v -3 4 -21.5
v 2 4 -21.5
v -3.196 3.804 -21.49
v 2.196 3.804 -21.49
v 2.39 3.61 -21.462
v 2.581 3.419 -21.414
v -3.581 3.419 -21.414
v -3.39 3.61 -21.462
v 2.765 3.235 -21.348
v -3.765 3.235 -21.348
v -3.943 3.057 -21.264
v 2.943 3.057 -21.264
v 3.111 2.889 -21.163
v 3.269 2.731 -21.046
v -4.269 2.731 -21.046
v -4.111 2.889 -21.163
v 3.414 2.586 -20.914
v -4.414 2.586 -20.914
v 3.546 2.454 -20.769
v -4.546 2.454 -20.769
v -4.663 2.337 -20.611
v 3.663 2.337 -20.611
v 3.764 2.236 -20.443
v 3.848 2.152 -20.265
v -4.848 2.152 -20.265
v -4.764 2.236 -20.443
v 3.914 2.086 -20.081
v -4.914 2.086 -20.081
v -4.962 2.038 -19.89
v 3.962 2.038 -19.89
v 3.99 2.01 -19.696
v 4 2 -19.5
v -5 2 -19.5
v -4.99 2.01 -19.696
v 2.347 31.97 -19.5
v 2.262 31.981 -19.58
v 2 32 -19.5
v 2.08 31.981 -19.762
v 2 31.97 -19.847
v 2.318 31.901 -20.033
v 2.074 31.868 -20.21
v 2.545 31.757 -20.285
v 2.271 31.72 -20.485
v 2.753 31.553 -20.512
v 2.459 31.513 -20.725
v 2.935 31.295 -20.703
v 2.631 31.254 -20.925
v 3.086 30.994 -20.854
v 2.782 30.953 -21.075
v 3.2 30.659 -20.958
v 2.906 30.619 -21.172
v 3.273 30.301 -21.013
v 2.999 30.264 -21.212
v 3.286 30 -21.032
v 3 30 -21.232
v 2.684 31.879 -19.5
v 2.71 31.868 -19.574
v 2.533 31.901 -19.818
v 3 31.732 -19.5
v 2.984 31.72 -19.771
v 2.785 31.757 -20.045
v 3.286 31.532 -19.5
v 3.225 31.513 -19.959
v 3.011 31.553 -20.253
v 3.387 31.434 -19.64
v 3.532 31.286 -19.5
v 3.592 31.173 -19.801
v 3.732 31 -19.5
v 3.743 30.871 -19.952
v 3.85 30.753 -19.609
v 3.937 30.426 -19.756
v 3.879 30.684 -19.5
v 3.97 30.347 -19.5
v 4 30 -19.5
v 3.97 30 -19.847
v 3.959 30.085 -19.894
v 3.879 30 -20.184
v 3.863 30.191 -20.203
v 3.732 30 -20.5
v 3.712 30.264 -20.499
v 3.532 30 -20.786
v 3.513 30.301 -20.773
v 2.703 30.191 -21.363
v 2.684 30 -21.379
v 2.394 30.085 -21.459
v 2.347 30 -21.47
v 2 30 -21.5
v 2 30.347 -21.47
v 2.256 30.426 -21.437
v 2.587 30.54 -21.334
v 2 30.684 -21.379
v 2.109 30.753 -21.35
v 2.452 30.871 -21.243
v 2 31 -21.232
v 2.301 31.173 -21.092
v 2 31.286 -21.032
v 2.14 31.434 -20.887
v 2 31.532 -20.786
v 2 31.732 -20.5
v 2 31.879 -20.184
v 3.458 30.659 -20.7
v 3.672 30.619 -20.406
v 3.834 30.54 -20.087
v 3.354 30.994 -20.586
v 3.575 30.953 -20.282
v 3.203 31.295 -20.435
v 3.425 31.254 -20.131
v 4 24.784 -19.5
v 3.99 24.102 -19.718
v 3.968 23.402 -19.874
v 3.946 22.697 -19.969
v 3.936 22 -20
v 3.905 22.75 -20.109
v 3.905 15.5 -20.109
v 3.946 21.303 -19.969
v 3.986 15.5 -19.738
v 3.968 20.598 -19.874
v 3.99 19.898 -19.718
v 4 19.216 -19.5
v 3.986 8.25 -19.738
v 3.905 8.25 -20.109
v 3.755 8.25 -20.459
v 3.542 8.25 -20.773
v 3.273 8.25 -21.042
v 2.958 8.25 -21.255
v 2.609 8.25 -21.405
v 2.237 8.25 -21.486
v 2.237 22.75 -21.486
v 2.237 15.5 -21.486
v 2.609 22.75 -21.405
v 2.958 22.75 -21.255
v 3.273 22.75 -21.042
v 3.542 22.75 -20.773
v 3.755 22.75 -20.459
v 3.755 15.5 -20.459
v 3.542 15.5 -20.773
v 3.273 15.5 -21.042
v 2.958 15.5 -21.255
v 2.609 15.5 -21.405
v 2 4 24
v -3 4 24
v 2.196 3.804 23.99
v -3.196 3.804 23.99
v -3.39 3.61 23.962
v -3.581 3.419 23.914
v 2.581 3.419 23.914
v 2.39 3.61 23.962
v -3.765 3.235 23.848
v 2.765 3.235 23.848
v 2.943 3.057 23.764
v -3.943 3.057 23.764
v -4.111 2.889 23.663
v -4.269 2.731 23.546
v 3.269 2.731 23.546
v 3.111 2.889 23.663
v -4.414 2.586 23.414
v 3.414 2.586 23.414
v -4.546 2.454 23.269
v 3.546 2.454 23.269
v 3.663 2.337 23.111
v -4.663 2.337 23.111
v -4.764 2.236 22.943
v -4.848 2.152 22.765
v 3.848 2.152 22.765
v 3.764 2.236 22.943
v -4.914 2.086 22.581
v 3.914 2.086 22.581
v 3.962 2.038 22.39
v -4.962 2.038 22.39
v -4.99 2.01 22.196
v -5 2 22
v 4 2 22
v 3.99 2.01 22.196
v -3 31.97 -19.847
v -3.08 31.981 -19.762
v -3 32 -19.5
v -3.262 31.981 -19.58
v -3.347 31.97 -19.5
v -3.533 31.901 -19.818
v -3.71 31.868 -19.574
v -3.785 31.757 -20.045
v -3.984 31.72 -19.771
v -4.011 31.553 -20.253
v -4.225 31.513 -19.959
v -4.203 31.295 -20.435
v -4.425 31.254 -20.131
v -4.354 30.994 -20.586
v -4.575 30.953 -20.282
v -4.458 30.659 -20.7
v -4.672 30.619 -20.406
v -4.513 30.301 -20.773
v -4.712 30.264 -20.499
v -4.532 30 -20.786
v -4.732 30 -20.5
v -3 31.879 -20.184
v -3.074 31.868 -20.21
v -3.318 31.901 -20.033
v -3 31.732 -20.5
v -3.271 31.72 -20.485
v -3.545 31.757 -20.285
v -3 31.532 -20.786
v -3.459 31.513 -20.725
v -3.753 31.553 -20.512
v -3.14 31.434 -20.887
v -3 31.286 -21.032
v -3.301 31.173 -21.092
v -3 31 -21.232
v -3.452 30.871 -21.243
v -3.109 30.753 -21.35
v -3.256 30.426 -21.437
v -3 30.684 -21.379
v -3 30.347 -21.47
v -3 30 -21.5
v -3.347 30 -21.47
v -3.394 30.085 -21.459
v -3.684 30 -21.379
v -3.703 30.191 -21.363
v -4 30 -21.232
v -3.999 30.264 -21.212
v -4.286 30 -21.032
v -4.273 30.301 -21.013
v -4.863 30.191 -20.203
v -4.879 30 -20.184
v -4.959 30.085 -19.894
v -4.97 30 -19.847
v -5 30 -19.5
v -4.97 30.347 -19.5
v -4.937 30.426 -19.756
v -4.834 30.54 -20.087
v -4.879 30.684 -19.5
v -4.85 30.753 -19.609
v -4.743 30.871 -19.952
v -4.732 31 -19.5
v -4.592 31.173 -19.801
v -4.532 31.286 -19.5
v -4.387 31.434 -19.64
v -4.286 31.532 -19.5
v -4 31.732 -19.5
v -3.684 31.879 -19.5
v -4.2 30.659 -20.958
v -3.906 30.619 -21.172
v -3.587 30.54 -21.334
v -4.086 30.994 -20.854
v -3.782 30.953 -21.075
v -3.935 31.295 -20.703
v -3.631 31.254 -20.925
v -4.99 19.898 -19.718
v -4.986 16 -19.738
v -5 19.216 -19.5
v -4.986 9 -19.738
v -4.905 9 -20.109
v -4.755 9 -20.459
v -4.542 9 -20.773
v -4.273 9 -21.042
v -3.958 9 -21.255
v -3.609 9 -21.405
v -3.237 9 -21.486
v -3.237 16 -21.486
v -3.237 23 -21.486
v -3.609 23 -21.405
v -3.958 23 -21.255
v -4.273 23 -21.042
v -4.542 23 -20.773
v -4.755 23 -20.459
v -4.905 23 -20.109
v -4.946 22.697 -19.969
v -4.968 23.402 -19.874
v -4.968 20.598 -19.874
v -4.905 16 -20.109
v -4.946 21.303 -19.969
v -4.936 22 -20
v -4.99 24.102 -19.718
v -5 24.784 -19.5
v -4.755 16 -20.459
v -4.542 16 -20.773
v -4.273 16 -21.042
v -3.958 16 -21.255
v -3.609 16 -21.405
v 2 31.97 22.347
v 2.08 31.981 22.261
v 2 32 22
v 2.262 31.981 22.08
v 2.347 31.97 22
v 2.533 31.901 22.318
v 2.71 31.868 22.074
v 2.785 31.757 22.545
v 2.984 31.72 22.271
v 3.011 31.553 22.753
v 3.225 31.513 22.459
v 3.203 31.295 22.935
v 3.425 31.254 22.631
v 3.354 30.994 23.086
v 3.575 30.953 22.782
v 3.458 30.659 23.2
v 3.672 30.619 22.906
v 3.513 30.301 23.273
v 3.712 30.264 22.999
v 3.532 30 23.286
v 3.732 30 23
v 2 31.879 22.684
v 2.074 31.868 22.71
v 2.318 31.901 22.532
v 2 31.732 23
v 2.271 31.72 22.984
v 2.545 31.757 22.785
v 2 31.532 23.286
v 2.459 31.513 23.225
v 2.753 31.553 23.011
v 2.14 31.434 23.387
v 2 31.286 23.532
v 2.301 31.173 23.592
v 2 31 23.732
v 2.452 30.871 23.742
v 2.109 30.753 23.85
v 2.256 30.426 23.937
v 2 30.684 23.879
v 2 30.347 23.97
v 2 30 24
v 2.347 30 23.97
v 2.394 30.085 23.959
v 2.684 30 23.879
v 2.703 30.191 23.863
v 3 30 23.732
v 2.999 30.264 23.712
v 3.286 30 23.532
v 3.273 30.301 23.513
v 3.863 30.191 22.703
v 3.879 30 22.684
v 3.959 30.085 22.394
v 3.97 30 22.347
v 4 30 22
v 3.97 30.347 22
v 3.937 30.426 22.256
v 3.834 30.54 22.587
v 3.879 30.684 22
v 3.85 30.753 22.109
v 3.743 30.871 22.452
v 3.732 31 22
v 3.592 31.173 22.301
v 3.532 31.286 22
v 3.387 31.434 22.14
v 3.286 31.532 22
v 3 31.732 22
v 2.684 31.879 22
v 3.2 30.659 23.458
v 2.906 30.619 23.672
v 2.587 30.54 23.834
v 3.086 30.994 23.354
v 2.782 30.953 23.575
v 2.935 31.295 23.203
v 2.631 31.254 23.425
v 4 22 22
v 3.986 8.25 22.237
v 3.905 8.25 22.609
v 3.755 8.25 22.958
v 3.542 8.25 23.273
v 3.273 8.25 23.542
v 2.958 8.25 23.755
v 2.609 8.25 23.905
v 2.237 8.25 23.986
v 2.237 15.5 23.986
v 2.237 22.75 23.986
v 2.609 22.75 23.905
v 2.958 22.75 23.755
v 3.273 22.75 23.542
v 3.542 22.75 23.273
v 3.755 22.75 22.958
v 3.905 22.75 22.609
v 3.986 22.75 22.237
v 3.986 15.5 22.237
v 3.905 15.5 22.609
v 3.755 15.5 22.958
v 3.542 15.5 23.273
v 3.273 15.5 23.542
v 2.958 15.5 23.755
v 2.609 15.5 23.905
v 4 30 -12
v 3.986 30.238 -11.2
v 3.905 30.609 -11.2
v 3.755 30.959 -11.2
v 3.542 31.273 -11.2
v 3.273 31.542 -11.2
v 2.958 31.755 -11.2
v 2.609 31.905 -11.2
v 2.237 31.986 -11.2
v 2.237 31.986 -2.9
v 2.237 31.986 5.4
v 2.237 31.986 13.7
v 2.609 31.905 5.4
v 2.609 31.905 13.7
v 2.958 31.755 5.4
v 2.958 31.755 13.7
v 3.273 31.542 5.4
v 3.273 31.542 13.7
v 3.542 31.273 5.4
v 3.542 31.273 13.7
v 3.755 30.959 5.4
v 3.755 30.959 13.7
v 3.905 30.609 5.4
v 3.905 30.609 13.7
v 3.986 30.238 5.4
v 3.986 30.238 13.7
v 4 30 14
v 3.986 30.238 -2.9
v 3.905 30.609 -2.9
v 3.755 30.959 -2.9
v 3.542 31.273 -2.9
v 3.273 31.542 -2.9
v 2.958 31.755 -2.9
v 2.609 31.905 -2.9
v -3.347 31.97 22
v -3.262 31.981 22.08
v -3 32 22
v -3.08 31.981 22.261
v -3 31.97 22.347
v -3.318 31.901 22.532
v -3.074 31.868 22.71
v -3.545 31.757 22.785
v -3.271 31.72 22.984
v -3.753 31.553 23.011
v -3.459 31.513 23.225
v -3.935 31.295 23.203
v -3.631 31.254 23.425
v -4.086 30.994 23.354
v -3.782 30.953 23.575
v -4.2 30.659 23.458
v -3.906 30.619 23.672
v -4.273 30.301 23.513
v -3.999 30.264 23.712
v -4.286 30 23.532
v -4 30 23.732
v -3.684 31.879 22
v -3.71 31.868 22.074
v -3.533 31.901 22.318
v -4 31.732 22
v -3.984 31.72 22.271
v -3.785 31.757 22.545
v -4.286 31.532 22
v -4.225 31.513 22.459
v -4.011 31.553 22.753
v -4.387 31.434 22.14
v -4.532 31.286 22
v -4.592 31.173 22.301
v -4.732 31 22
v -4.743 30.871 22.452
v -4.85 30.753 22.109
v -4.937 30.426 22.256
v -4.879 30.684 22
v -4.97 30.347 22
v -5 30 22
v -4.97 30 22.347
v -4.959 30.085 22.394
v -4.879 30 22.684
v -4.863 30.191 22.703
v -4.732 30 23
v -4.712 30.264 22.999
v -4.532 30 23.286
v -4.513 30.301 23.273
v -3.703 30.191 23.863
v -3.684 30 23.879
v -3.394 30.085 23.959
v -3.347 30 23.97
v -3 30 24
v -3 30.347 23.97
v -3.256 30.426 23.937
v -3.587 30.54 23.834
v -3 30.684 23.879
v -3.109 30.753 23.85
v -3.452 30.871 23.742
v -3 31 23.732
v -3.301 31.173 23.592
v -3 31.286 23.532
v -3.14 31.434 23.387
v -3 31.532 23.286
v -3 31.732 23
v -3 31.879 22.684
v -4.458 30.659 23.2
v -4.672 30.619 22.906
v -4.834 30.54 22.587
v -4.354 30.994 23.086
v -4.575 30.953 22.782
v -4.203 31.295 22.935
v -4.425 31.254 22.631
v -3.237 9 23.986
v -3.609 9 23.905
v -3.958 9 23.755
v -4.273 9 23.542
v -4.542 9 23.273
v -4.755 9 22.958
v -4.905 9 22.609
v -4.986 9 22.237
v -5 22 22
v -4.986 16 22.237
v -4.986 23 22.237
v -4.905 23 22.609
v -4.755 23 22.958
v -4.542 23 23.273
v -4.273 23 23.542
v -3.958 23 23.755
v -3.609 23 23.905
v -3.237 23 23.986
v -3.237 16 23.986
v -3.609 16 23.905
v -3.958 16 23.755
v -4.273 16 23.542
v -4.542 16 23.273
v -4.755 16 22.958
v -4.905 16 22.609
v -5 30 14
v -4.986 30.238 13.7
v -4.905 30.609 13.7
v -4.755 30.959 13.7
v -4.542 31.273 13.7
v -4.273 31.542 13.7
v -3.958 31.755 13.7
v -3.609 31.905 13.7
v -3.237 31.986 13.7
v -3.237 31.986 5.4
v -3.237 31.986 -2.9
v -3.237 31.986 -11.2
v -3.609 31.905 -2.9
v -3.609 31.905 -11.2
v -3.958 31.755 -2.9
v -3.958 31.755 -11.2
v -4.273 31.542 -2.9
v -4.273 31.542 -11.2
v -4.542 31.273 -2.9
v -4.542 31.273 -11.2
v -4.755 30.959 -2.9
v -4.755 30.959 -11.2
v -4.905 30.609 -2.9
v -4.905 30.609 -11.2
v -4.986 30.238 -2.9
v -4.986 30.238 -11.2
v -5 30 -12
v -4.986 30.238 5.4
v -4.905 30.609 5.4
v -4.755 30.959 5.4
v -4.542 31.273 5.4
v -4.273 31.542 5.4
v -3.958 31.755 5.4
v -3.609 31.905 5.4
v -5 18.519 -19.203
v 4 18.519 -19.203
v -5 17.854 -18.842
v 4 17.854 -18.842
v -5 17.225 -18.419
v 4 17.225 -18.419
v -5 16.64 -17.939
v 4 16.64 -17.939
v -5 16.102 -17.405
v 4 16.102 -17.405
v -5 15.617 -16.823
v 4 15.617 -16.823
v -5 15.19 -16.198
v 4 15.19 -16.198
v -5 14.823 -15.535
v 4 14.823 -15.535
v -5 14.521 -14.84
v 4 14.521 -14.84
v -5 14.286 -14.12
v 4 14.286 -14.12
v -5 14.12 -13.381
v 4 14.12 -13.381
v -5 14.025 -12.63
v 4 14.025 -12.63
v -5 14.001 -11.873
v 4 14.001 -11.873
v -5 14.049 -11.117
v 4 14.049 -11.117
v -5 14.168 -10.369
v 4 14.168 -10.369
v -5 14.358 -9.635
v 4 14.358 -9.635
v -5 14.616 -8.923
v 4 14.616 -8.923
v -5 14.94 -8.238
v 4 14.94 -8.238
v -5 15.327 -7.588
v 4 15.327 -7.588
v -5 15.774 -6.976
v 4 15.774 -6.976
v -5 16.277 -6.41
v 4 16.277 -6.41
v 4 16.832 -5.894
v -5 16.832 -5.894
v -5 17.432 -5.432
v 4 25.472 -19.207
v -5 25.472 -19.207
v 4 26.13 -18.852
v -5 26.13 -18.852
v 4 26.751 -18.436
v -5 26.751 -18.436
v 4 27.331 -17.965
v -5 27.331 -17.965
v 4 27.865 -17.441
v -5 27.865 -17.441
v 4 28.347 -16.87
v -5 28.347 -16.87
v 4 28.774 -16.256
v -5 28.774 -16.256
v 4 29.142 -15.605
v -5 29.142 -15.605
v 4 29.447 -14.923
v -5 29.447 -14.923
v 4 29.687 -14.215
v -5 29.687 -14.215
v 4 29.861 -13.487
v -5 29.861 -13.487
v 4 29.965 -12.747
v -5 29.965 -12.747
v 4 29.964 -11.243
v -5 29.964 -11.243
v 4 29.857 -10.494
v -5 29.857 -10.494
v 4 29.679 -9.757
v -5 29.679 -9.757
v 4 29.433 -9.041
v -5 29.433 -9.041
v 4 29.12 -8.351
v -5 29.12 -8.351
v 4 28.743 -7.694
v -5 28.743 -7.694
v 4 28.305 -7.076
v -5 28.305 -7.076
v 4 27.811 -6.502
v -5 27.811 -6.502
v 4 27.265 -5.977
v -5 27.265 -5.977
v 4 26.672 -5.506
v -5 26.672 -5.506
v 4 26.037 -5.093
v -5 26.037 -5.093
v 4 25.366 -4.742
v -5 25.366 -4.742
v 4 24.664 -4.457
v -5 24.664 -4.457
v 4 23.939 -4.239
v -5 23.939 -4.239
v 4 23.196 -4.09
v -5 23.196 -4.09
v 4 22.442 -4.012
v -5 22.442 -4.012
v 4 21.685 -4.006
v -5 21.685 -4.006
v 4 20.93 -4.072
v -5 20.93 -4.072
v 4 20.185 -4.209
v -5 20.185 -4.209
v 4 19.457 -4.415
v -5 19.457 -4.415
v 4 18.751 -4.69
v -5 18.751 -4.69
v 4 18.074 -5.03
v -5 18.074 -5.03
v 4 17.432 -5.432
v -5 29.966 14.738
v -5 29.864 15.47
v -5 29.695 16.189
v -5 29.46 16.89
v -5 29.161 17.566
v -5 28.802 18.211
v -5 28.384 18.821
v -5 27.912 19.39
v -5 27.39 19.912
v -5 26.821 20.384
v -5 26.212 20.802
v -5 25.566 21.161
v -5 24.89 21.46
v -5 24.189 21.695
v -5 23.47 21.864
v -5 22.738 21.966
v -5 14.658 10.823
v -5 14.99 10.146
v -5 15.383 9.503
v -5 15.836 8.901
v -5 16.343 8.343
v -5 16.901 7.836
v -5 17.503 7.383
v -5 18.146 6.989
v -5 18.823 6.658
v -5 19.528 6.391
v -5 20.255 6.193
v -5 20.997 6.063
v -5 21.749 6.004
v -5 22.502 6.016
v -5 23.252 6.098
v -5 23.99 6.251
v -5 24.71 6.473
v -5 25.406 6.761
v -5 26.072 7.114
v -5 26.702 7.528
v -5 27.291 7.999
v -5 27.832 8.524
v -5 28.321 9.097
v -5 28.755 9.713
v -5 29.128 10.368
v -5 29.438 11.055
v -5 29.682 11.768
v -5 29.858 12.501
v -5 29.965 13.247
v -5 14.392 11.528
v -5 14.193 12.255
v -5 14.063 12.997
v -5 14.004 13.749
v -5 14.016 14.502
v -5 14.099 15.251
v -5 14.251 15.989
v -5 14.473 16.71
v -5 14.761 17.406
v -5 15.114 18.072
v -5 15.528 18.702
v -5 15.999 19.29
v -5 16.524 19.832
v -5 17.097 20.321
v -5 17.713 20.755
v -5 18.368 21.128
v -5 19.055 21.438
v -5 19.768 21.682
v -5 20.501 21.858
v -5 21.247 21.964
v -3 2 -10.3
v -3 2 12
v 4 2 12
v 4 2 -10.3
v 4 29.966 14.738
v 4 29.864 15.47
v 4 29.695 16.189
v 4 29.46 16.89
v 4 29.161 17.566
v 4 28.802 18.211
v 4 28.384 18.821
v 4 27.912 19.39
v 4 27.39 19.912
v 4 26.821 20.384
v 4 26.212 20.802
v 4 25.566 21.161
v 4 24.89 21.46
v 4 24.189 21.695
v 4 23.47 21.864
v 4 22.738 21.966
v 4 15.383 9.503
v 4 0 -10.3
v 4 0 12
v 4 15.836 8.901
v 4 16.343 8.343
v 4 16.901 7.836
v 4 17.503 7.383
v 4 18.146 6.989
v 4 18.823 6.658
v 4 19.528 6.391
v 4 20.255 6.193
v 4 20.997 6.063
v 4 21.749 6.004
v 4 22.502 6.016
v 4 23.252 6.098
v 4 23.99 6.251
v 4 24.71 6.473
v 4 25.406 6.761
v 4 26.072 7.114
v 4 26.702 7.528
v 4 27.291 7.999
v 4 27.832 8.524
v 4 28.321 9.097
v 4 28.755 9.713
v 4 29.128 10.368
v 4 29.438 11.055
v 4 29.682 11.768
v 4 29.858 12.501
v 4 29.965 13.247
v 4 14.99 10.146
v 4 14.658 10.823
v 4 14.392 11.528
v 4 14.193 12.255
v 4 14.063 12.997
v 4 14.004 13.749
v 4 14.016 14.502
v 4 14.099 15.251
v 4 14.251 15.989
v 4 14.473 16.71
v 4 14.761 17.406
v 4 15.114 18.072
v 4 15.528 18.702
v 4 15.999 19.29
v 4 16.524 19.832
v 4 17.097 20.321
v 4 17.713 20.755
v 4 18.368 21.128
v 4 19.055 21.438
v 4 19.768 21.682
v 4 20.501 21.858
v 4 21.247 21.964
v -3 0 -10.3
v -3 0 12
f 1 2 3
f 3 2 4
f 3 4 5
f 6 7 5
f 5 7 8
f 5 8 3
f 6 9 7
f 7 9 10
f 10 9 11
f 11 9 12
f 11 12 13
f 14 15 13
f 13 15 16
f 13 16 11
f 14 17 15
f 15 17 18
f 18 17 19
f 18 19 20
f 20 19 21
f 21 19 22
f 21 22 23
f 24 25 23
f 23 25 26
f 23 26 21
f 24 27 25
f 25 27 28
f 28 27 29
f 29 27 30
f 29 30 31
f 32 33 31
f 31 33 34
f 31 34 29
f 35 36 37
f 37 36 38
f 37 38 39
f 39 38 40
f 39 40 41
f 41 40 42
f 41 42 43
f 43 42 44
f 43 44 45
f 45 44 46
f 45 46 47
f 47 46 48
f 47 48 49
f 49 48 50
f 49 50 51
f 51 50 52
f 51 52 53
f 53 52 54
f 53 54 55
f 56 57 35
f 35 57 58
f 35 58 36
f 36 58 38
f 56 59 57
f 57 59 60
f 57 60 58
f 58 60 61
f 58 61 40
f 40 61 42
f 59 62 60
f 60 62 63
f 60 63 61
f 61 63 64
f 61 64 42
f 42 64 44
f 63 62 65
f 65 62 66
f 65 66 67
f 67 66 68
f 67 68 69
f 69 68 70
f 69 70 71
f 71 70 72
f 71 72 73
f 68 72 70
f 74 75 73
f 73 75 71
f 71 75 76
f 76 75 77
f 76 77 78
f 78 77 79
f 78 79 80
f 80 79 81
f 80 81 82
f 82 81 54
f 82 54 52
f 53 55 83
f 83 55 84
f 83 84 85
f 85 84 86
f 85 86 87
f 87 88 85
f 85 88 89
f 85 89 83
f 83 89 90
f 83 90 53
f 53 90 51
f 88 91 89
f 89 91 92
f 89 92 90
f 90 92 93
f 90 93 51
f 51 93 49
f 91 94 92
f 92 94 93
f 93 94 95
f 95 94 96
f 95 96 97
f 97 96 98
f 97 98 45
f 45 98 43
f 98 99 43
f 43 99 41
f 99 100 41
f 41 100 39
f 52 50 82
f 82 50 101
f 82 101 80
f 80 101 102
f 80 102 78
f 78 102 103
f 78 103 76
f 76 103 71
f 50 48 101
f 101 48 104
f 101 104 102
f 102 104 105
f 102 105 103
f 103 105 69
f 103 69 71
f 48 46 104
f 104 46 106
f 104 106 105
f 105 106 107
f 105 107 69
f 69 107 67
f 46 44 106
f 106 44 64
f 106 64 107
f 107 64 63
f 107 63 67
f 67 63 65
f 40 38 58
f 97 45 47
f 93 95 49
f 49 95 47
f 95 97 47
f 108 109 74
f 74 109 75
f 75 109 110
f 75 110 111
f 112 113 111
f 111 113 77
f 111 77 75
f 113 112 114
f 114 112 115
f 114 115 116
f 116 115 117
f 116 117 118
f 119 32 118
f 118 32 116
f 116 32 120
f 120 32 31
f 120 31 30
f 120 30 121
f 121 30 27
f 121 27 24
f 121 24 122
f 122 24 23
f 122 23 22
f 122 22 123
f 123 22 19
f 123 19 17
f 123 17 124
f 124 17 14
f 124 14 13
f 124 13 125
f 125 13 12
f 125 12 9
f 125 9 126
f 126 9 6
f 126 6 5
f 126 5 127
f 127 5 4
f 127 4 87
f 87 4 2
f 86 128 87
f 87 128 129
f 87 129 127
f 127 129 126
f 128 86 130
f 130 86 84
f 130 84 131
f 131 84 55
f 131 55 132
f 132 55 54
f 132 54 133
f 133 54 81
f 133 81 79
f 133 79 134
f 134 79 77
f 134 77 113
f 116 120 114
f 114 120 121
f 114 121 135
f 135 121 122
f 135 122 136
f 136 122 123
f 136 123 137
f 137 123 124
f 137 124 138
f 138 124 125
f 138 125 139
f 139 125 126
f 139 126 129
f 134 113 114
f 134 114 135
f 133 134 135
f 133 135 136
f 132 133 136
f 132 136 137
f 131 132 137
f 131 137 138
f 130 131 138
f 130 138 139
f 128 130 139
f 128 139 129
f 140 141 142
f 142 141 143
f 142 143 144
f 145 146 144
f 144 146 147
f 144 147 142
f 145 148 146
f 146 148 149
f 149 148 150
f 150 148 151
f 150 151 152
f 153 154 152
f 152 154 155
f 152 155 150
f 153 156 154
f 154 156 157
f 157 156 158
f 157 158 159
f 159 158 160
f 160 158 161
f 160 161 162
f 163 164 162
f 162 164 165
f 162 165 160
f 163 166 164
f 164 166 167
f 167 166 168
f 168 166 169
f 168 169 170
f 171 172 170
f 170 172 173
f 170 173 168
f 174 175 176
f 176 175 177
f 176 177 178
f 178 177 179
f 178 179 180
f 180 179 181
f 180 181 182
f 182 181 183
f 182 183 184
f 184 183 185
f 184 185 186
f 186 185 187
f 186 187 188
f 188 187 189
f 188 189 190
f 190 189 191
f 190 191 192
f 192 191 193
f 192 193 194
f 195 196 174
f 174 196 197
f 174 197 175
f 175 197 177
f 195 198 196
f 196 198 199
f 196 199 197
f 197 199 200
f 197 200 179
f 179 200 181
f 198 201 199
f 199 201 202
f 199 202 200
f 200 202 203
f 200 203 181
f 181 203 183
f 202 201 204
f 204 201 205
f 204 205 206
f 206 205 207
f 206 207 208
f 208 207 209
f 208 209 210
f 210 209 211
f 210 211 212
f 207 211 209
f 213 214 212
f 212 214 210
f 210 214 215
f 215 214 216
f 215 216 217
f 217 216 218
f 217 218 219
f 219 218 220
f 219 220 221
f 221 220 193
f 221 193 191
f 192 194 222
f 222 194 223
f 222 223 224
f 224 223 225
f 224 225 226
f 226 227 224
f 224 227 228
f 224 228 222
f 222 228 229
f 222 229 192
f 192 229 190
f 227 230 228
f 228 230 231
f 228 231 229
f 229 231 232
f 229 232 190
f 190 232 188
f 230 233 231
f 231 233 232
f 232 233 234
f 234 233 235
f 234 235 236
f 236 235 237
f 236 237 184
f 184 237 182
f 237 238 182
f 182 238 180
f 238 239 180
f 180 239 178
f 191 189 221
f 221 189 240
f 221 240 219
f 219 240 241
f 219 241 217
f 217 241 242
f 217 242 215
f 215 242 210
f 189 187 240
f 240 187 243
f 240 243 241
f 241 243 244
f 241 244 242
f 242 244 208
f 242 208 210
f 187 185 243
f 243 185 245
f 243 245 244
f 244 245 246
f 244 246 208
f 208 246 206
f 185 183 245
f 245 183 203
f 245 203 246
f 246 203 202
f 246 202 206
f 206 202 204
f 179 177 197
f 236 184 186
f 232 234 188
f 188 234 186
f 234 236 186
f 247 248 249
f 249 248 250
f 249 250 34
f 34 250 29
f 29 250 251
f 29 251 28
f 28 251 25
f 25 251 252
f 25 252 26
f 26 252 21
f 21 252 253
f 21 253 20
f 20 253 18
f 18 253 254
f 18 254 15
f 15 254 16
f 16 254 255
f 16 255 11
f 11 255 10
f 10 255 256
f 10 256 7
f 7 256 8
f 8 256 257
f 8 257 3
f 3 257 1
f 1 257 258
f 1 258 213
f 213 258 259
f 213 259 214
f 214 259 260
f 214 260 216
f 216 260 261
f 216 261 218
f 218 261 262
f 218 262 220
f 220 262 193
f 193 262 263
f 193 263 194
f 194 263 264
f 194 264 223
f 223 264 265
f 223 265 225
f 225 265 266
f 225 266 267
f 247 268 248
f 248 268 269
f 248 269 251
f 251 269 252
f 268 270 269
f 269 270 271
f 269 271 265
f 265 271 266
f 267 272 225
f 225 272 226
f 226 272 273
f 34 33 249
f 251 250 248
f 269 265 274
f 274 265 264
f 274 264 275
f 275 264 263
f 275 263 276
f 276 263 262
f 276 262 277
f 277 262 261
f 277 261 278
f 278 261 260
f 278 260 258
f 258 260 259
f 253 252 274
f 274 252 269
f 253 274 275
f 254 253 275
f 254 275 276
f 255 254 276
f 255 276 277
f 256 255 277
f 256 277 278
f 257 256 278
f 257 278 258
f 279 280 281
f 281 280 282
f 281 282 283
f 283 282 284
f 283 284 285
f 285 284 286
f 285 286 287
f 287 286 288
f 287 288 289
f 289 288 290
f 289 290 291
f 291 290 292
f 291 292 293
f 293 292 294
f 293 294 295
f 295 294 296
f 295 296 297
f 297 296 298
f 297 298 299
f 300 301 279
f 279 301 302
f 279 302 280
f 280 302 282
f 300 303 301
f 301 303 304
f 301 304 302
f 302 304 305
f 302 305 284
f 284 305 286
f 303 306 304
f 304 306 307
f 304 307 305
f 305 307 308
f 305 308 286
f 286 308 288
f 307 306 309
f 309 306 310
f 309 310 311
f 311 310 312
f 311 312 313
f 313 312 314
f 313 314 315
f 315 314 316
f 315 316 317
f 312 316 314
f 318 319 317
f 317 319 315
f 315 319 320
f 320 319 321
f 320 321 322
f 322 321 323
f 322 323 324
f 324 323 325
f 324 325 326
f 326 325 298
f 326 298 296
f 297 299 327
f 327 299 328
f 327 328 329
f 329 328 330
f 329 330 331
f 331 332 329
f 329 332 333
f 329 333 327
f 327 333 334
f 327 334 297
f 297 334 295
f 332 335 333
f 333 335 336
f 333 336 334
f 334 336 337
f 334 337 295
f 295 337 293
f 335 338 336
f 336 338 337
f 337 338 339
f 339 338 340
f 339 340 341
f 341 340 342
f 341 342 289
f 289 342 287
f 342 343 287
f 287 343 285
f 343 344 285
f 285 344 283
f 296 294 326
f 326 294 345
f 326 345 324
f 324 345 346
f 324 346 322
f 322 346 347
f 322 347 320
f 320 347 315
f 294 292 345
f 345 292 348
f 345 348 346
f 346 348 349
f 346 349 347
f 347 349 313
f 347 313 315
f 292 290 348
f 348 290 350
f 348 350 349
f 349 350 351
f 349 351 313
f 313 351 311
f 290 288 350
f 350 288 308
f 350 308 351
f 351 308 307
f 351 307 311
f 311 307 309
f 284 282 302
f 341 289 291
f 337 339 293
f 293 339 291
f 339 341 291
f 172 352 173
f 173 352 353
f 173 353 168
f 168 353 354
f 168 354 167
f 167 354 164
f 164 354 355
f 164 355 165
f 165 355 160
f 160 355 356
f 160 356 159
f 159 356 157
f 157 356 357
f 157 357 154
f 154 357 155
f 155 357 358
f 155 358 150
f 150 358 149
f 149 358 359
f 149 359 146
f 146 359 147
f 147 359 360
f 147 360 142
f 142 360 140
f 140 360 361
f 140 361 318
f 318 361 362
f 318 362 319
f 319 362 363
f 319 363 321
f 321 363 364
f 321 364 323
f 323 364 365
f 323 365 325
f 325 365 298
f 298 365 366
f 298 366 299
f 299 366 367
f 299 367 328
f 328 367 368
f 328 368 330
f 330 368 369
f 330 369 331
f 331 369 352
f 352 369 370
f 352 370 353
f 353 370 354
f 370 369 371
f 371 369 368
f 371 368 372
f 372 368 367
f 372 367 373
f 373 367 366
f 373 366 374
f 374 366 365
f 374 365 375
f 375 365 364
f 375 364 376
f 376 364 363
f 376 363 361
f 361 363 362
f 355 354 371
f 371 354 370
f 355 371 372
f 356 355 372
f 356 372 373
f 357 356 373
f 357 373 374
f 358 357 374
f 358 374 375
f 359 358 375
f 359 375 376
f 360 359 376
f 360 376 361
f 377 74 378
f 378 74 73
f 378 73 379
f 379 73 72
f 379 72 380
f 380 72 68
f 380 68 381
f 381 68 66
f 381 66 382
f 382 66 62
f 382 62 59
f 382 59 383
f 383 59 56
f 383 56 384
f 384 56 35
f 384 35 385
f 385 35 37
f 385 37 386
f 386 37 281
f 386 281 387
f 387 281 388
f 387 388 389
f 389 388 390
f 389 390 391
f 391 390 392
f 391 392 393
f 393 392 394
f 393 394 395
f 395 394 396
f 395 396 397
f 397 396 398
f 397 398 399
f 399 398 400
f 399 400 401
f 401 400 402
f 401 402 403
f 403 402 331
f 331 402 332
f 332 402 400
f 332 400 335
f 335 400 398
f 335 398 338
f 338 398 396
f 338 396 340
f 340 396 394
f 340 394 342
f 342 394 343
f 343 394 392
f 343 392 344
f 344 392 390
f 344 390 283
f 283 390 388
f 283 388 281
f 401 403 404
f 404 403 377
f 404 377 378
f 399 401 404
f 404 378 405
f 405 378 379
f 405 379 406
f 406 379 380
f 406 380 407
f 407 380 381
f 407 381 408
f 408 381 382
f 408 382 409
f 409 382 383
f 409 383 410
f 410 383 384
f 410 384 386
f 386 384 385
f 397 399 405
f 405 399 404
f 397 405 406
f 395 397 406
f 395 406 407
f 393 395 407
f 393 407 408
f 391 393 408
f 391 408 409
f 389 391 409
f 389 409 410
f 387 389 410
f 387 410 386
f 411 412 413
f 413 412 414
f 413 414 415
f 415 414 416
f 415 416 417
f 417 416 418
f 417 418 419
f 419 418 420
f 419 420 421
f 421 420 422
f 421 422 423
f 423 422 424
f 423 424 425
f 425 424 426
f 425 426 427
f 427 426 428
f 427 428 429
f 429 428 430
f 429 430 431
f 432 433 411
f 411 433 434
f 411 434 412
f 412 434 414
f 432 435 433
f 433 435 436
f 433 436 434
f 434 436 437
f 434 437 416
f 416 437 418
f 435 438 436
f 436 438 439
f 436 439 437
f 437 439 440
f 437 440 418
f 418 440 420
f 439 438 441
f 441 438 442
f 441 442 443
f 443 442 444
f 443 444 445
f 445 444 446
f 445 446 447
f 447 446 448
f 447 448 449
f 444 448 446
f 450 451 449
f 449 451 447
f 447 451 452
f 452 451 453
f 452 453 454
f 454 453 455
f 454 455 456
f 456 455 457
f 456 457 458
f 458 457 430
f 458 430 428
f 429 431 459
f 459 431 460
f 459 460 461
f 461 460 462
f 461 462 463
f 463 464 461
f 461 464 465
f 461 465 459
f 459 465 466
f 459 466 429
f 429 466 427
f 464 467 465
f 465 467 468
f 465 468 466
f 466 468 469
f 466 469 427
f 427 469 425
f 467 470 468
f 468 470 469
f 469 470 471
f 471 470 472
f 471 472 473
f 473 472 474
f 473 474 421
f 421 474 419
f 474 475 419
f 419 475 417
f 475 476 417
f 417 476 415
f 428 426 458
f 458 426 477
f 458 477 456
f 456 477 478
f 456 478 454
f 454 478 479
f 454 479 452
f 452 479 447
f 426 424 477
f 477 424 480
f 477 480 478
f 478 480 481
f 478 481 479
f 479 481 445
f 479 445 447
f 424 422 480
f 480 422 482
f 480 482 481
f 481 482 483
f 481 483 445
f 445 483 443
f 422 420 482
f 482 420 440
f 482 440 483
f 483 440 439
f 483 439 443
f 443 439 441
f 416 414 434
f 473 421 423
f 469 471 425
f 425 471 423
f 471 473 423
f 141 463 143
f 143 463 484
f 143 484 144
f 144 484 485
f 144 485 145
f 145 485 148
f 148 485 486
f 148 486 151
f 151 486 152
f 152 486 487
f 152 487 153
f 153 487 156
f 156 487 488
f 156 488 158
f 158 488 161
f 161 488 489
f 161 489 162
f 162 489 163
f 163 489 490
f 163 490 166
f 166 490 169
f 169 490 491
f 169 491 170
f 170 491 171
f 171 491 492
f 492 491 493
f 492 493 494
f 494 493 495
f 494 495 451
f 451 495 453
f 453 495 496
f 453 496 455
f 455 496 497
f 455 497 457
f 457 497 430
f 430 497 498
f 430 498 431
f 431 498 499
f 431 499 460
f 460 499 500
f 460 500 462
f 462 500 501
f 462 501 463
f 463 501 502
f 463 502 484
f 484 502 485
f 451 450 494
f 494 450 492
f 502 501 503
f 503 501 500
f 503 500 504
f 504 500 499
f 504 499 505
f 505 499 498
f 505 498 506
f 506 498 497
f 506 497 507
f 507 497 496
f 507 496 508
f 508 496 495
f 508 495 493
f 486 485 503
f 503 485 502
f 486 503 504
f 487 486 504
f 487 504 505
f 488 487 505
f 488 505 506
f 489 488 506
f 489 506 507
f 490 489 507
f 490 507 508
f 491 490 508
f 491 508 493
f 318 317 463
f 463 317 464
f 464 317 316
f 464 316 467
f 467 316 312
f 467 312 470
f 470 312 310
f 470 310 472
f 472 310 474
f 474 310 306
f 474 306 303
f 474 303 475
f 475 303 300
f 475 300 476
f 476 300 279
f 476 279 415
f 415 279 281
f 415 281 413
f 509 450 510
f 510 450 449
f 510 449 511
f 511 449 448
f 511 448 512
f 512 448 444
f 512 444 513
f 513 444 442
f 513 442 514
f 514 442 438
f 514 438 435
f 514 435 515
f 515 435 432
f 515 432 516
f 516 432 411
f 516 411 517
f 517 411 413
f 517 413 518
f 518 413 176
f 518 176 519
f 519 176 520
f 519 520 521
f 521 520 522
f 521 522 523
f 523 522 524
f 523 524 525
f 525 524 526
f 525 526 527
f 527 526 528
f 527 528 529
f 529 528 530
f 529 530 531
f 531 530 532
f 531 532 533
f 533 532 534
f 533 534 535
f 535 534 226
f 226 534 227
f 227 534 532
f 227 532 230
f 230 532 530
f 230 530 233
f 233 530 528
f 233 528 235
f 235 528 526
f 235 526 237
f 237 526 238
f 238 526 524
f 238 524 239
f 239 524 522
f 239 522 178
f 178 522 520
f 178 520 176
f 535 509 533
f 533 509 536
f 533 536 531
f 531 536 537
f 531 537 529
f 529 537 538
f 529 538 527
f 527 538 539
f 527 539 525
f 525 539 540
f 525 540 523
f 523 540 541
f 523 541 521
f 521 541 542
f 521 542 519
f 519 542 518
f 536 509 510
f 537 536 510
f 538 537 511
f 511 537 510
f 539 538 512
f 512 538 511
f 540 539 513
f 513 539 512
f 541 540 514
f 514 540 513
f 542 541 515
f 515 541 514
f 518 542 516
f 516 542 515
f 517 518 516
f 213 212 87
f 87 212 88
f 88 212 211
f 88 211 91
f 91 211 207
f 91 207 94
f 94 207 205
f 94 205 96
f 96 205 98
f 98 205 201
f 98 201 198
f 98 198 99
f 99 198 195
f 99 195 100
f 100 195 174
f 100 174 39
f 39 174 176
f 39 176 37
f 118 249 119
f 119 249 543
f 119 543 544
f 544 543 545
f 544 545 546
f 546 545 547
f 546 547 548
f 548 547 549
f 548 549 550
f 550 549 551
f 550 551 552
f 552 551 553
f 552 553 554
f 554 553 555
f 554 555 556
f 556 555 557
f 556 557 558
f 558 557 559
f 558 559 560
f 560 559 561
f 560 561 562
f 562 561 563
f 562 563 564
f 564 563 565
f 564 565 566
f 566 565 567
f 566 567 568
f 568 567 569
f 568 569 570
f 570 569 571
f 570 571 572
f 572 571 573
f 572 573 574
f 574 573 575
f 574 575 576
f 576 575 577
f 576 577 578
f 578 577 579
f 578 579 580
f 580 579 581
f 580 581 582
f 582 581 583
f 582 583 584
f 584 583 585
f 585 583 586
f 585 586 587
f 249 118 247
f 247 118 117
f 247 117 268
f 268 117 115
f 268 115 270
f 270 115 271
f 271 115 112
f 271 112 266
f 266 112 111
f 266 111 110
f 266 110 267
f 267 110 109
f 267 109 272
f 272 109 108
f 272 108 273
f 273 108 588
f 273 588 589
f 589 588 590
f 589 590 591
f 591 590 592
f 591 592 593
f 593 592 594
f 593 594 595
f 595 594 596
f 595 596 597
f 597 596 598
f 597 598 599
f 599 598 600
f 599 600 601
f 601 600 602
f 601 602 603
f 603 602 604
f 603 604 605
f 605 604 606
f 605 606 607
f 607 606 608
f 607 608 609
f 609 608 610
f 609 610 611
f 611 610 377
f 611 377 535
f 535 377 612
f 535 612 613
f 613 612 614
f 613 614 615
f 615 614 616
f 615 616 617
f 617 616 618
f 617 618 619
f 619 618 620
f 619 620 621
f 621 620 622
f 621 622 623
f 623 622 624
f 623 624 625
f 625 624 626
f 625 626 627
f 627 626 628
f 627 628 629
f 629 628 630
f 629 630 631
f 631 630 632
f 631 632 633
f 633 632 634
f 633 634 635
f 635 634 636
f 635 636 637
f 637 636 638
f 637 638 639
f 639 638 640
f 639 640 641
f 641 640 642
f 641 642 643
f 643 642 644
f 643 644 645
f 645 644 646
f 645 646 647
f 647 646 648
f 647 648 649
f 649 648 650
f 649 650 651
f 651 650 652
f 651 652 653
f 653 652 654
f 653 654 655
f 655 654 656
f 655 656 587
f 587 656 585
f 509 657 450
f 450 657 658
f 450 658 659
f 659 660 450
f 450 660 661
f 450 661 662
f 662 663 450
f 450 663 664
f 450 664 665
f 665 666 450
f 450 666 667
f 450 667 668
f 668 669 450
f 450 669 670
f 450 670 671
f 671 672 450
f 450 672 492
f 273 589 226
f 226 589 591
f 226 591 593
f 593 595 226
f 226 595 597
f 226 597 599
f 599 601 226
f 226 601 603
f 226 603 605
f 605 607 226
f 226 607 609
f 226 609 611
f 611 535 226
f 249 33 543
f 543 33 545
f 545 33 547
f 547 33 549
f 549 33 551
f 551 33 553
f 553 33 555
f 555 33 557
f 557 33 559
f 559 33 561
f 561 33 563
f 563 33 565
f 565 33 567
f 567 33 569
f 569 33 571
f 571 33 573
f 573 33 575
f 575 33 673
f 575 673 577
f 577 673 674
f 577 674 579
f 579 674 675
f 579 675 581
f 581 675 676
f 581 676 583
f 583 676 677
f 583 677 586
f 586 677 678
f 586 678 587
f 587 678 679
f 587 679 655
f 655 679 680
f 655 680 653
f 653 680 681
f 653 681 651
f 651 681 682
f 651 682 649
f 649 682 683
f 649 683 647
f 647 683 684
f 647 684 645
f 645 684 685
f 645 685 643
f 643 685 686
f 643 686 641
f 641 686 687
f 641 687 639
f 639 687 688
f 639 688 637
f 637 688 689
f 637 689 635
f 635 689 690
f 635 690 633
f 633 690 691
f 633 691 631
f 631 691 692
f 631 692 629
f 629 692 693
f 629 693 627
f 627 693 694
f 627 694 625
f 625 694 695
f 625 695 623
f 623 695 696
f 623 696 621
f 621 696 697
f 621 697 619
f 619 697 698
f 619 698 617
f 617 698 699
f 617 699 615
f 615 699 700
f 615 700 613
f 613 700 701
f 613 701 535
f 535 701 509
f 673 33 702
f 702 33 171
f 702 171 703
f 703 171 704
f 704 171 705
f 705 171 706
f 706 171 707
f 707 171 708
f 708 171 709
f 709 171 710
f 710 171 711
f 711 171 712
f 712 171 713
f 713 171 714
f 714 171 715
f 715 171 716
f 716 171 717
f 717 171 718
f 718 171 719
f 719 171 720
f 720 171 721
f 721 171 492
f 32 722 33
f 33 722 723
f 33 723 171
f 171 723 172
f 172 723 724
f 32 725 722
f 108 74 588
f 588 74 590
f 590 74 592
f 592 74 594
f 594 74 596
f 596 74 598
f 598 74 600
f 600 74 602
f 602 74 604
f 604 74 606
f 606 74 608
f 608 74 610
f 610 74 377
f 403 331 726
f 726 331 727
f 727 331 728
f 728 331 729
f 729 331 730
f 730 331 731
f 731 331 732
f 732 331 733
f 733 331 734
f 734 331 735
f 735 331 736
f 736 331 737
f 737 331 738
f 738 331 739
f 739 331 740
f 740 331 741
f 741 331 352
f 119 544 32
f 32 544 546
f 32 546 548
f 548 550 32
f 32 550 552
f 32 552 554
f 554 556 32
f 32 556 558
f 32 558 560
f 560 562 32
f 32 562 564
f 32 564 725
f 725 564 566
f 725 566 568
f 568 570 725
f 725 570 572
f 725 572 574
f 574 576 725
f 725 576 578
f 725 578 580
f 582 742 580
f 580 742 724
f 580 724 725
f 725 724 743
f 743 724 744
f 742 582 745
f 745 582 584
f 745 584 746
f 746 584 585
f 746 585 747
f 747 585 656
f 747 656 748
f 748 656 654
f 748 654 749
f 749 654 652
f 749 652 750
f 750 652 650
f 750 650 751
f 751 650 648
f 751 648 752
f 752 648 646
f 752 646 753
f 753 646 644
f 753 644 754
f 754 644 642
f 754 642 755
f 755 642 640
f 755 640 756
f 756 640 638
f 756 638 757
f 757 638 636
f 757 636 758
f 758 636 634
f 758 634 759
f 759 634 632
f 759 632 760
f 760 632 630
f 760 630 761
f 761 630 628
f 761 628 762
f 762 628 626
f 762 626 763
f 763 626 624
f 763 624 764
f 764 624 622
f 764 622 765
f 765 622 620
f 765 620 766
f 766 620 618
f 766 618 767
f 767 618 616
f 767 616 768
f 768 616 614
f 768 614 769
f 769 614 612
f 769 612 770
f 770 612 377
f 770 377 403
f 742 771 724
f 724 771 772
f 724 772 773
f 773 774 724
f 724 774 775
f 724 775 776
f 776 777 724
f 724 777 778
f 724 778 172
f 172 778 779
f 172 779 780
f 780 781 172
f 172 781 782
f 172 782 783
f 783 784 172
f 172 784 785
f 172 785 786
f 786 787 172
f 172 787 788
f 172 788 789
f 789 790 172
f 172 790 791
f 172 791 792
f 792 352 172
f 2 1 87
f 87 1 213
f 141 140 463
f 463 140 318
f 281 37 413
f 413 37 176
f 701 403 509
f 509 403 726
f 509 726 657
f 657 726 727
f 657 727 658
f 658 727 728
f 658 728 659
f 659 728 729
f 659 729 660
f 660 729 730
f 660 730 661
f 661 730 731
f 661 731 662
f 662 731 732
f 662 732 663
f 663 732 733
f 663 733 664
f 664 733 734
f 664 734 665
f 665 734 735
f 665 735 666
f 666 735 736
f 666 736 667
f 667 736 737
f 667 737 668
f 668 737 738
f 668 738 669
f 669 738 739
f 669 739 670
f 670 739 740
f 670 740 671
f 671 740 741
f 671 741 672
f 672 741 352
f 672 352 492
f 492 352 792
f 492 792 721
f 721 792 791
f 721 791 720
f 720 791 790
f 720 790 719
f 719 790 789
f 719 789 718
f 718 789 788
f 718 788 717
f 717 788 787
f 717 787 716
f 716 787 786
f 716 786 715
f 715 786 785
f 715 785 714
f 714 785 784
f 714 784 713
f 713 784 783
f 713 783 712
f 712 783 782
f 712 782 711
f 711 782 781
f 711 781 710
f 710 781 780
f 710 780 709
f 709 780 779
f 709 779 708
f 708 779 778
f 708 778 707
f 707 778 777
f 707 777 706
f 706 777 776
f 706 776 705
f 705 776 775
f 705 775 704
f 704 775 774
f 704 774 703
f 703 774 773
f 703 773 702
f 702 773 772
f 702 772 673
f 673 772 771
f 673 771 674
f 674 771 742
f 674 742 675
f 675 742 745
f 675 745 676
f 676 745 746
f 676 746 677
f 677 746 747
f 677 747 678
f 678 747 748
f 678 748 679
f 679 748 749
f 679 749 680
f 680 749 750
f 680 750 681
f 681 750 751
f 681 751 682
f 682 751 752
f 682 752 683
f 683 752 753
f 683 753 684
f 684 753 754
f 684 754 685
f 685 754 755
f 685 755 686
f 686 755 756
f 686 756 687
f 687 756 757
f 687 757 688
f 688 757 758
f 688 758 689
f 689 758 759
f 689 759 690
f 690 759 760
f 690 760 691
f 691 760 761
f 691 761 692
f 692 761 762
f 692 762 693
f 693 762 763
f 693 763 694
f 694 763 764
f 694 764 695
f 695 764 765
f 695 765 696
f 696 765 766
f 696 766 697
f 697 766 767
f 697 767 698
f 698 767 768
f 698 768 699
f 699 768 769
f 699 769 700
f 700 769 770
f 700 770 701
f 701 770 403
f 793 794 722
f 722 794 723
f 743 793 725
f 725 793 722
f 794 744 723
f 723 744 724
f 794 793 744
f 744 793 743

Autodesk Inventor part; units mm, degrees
ref_plane "YZ Plane" through (0, 0, 0) normal (1, 0, 0) x (0, 1, 0)
ref_plane "XZ Plane" through (0, 0, 0) normal (0, 1, 0) x (-1, 0, 0)
ref_plane "XY Plane" through (0, 0, 0) normal (0, 0, 1) x (1, 0, 0)
sketch "Sketch1" plane through (0, 0, 0) normal (0, 1, 0) x (-1, 0, 0)
  line L0 (3, 12) -> (-4, 12)
  line L1 (-4, 12) -> (-4, -10.3)
  line L2 (-4, -10.3) -> (3, -10.3)
  line L3 (3, -10.3) -> (3, 12)
  point P0 (0, 0)
  dimension "d0" = 7
  dimension "d1" = 22.3
extrude "Extrusion1" add sketch "Sketch1" along normal blind 2
sketch "Sketch2" plane through (0, 2, 0) normal (0, 1, 0) x (1, 0, 0)
  line L0 (-5, -24) -> (4, -24)
  line L1 (4, -24) -> (4, 21.5)
  line L2 (4, 21.5) -> (-5, 21.5)
  line L3 (-5, 21.5) -> (-5, -24)
  point P0 (0, 0)
  dimension "d4" = 45.5
extrude "Extrusion2" add sketch "Sketch2" along normal blind 30
sketch "Sketch3" plane through (4, 0, 12) normal (1, 0, 0) x (0, 0, -1)
  circle A0 centre (-2, 22) radius 8
  circle A1 centre (24, 22) radius 8
  point P0 (12, 0)
  dimension "d7" = 16
  dimension "d8" = 16
  dimension "d9" = 10
extrude "Extrusion3" cut sketch "Sketch3" against normal blind 30
fillet "Fillet1" radius 2 10 edges at (-0.5, 32, 24) (4, 32, 1.25) (-0.5, 32, -21.5) (-5, 32, 1.25) (-0.5, 2, 24) (4, 17, 24) (-5, 17, 24) (-0.5, 2, -21.5) (-5, 17, -21.5) (4, 17, -21.5)
properties part number "sonarMount"
